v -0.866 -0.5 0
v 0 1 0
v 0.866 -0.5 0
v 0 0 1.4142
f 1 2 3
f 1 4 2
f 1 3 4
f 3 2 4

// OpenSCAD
module myTetrahedron (x) {
    scale ([x, x, x]) {
    polyhedron (
	points = [
	    [-sqrt(3)/2, -0.5, 0],
	    [sqrt(3)/2, -0.5, 0],
	    [0, 1, 0],
	    [0, 0, sqrt(2)]
	],
	faces = [
	    [0, 2, 1],
	    [0, 3, 2],
	    [0, 1, 3],
	    [1, 2, 3]
	]);
    }
}

myTetrahedron(1);
